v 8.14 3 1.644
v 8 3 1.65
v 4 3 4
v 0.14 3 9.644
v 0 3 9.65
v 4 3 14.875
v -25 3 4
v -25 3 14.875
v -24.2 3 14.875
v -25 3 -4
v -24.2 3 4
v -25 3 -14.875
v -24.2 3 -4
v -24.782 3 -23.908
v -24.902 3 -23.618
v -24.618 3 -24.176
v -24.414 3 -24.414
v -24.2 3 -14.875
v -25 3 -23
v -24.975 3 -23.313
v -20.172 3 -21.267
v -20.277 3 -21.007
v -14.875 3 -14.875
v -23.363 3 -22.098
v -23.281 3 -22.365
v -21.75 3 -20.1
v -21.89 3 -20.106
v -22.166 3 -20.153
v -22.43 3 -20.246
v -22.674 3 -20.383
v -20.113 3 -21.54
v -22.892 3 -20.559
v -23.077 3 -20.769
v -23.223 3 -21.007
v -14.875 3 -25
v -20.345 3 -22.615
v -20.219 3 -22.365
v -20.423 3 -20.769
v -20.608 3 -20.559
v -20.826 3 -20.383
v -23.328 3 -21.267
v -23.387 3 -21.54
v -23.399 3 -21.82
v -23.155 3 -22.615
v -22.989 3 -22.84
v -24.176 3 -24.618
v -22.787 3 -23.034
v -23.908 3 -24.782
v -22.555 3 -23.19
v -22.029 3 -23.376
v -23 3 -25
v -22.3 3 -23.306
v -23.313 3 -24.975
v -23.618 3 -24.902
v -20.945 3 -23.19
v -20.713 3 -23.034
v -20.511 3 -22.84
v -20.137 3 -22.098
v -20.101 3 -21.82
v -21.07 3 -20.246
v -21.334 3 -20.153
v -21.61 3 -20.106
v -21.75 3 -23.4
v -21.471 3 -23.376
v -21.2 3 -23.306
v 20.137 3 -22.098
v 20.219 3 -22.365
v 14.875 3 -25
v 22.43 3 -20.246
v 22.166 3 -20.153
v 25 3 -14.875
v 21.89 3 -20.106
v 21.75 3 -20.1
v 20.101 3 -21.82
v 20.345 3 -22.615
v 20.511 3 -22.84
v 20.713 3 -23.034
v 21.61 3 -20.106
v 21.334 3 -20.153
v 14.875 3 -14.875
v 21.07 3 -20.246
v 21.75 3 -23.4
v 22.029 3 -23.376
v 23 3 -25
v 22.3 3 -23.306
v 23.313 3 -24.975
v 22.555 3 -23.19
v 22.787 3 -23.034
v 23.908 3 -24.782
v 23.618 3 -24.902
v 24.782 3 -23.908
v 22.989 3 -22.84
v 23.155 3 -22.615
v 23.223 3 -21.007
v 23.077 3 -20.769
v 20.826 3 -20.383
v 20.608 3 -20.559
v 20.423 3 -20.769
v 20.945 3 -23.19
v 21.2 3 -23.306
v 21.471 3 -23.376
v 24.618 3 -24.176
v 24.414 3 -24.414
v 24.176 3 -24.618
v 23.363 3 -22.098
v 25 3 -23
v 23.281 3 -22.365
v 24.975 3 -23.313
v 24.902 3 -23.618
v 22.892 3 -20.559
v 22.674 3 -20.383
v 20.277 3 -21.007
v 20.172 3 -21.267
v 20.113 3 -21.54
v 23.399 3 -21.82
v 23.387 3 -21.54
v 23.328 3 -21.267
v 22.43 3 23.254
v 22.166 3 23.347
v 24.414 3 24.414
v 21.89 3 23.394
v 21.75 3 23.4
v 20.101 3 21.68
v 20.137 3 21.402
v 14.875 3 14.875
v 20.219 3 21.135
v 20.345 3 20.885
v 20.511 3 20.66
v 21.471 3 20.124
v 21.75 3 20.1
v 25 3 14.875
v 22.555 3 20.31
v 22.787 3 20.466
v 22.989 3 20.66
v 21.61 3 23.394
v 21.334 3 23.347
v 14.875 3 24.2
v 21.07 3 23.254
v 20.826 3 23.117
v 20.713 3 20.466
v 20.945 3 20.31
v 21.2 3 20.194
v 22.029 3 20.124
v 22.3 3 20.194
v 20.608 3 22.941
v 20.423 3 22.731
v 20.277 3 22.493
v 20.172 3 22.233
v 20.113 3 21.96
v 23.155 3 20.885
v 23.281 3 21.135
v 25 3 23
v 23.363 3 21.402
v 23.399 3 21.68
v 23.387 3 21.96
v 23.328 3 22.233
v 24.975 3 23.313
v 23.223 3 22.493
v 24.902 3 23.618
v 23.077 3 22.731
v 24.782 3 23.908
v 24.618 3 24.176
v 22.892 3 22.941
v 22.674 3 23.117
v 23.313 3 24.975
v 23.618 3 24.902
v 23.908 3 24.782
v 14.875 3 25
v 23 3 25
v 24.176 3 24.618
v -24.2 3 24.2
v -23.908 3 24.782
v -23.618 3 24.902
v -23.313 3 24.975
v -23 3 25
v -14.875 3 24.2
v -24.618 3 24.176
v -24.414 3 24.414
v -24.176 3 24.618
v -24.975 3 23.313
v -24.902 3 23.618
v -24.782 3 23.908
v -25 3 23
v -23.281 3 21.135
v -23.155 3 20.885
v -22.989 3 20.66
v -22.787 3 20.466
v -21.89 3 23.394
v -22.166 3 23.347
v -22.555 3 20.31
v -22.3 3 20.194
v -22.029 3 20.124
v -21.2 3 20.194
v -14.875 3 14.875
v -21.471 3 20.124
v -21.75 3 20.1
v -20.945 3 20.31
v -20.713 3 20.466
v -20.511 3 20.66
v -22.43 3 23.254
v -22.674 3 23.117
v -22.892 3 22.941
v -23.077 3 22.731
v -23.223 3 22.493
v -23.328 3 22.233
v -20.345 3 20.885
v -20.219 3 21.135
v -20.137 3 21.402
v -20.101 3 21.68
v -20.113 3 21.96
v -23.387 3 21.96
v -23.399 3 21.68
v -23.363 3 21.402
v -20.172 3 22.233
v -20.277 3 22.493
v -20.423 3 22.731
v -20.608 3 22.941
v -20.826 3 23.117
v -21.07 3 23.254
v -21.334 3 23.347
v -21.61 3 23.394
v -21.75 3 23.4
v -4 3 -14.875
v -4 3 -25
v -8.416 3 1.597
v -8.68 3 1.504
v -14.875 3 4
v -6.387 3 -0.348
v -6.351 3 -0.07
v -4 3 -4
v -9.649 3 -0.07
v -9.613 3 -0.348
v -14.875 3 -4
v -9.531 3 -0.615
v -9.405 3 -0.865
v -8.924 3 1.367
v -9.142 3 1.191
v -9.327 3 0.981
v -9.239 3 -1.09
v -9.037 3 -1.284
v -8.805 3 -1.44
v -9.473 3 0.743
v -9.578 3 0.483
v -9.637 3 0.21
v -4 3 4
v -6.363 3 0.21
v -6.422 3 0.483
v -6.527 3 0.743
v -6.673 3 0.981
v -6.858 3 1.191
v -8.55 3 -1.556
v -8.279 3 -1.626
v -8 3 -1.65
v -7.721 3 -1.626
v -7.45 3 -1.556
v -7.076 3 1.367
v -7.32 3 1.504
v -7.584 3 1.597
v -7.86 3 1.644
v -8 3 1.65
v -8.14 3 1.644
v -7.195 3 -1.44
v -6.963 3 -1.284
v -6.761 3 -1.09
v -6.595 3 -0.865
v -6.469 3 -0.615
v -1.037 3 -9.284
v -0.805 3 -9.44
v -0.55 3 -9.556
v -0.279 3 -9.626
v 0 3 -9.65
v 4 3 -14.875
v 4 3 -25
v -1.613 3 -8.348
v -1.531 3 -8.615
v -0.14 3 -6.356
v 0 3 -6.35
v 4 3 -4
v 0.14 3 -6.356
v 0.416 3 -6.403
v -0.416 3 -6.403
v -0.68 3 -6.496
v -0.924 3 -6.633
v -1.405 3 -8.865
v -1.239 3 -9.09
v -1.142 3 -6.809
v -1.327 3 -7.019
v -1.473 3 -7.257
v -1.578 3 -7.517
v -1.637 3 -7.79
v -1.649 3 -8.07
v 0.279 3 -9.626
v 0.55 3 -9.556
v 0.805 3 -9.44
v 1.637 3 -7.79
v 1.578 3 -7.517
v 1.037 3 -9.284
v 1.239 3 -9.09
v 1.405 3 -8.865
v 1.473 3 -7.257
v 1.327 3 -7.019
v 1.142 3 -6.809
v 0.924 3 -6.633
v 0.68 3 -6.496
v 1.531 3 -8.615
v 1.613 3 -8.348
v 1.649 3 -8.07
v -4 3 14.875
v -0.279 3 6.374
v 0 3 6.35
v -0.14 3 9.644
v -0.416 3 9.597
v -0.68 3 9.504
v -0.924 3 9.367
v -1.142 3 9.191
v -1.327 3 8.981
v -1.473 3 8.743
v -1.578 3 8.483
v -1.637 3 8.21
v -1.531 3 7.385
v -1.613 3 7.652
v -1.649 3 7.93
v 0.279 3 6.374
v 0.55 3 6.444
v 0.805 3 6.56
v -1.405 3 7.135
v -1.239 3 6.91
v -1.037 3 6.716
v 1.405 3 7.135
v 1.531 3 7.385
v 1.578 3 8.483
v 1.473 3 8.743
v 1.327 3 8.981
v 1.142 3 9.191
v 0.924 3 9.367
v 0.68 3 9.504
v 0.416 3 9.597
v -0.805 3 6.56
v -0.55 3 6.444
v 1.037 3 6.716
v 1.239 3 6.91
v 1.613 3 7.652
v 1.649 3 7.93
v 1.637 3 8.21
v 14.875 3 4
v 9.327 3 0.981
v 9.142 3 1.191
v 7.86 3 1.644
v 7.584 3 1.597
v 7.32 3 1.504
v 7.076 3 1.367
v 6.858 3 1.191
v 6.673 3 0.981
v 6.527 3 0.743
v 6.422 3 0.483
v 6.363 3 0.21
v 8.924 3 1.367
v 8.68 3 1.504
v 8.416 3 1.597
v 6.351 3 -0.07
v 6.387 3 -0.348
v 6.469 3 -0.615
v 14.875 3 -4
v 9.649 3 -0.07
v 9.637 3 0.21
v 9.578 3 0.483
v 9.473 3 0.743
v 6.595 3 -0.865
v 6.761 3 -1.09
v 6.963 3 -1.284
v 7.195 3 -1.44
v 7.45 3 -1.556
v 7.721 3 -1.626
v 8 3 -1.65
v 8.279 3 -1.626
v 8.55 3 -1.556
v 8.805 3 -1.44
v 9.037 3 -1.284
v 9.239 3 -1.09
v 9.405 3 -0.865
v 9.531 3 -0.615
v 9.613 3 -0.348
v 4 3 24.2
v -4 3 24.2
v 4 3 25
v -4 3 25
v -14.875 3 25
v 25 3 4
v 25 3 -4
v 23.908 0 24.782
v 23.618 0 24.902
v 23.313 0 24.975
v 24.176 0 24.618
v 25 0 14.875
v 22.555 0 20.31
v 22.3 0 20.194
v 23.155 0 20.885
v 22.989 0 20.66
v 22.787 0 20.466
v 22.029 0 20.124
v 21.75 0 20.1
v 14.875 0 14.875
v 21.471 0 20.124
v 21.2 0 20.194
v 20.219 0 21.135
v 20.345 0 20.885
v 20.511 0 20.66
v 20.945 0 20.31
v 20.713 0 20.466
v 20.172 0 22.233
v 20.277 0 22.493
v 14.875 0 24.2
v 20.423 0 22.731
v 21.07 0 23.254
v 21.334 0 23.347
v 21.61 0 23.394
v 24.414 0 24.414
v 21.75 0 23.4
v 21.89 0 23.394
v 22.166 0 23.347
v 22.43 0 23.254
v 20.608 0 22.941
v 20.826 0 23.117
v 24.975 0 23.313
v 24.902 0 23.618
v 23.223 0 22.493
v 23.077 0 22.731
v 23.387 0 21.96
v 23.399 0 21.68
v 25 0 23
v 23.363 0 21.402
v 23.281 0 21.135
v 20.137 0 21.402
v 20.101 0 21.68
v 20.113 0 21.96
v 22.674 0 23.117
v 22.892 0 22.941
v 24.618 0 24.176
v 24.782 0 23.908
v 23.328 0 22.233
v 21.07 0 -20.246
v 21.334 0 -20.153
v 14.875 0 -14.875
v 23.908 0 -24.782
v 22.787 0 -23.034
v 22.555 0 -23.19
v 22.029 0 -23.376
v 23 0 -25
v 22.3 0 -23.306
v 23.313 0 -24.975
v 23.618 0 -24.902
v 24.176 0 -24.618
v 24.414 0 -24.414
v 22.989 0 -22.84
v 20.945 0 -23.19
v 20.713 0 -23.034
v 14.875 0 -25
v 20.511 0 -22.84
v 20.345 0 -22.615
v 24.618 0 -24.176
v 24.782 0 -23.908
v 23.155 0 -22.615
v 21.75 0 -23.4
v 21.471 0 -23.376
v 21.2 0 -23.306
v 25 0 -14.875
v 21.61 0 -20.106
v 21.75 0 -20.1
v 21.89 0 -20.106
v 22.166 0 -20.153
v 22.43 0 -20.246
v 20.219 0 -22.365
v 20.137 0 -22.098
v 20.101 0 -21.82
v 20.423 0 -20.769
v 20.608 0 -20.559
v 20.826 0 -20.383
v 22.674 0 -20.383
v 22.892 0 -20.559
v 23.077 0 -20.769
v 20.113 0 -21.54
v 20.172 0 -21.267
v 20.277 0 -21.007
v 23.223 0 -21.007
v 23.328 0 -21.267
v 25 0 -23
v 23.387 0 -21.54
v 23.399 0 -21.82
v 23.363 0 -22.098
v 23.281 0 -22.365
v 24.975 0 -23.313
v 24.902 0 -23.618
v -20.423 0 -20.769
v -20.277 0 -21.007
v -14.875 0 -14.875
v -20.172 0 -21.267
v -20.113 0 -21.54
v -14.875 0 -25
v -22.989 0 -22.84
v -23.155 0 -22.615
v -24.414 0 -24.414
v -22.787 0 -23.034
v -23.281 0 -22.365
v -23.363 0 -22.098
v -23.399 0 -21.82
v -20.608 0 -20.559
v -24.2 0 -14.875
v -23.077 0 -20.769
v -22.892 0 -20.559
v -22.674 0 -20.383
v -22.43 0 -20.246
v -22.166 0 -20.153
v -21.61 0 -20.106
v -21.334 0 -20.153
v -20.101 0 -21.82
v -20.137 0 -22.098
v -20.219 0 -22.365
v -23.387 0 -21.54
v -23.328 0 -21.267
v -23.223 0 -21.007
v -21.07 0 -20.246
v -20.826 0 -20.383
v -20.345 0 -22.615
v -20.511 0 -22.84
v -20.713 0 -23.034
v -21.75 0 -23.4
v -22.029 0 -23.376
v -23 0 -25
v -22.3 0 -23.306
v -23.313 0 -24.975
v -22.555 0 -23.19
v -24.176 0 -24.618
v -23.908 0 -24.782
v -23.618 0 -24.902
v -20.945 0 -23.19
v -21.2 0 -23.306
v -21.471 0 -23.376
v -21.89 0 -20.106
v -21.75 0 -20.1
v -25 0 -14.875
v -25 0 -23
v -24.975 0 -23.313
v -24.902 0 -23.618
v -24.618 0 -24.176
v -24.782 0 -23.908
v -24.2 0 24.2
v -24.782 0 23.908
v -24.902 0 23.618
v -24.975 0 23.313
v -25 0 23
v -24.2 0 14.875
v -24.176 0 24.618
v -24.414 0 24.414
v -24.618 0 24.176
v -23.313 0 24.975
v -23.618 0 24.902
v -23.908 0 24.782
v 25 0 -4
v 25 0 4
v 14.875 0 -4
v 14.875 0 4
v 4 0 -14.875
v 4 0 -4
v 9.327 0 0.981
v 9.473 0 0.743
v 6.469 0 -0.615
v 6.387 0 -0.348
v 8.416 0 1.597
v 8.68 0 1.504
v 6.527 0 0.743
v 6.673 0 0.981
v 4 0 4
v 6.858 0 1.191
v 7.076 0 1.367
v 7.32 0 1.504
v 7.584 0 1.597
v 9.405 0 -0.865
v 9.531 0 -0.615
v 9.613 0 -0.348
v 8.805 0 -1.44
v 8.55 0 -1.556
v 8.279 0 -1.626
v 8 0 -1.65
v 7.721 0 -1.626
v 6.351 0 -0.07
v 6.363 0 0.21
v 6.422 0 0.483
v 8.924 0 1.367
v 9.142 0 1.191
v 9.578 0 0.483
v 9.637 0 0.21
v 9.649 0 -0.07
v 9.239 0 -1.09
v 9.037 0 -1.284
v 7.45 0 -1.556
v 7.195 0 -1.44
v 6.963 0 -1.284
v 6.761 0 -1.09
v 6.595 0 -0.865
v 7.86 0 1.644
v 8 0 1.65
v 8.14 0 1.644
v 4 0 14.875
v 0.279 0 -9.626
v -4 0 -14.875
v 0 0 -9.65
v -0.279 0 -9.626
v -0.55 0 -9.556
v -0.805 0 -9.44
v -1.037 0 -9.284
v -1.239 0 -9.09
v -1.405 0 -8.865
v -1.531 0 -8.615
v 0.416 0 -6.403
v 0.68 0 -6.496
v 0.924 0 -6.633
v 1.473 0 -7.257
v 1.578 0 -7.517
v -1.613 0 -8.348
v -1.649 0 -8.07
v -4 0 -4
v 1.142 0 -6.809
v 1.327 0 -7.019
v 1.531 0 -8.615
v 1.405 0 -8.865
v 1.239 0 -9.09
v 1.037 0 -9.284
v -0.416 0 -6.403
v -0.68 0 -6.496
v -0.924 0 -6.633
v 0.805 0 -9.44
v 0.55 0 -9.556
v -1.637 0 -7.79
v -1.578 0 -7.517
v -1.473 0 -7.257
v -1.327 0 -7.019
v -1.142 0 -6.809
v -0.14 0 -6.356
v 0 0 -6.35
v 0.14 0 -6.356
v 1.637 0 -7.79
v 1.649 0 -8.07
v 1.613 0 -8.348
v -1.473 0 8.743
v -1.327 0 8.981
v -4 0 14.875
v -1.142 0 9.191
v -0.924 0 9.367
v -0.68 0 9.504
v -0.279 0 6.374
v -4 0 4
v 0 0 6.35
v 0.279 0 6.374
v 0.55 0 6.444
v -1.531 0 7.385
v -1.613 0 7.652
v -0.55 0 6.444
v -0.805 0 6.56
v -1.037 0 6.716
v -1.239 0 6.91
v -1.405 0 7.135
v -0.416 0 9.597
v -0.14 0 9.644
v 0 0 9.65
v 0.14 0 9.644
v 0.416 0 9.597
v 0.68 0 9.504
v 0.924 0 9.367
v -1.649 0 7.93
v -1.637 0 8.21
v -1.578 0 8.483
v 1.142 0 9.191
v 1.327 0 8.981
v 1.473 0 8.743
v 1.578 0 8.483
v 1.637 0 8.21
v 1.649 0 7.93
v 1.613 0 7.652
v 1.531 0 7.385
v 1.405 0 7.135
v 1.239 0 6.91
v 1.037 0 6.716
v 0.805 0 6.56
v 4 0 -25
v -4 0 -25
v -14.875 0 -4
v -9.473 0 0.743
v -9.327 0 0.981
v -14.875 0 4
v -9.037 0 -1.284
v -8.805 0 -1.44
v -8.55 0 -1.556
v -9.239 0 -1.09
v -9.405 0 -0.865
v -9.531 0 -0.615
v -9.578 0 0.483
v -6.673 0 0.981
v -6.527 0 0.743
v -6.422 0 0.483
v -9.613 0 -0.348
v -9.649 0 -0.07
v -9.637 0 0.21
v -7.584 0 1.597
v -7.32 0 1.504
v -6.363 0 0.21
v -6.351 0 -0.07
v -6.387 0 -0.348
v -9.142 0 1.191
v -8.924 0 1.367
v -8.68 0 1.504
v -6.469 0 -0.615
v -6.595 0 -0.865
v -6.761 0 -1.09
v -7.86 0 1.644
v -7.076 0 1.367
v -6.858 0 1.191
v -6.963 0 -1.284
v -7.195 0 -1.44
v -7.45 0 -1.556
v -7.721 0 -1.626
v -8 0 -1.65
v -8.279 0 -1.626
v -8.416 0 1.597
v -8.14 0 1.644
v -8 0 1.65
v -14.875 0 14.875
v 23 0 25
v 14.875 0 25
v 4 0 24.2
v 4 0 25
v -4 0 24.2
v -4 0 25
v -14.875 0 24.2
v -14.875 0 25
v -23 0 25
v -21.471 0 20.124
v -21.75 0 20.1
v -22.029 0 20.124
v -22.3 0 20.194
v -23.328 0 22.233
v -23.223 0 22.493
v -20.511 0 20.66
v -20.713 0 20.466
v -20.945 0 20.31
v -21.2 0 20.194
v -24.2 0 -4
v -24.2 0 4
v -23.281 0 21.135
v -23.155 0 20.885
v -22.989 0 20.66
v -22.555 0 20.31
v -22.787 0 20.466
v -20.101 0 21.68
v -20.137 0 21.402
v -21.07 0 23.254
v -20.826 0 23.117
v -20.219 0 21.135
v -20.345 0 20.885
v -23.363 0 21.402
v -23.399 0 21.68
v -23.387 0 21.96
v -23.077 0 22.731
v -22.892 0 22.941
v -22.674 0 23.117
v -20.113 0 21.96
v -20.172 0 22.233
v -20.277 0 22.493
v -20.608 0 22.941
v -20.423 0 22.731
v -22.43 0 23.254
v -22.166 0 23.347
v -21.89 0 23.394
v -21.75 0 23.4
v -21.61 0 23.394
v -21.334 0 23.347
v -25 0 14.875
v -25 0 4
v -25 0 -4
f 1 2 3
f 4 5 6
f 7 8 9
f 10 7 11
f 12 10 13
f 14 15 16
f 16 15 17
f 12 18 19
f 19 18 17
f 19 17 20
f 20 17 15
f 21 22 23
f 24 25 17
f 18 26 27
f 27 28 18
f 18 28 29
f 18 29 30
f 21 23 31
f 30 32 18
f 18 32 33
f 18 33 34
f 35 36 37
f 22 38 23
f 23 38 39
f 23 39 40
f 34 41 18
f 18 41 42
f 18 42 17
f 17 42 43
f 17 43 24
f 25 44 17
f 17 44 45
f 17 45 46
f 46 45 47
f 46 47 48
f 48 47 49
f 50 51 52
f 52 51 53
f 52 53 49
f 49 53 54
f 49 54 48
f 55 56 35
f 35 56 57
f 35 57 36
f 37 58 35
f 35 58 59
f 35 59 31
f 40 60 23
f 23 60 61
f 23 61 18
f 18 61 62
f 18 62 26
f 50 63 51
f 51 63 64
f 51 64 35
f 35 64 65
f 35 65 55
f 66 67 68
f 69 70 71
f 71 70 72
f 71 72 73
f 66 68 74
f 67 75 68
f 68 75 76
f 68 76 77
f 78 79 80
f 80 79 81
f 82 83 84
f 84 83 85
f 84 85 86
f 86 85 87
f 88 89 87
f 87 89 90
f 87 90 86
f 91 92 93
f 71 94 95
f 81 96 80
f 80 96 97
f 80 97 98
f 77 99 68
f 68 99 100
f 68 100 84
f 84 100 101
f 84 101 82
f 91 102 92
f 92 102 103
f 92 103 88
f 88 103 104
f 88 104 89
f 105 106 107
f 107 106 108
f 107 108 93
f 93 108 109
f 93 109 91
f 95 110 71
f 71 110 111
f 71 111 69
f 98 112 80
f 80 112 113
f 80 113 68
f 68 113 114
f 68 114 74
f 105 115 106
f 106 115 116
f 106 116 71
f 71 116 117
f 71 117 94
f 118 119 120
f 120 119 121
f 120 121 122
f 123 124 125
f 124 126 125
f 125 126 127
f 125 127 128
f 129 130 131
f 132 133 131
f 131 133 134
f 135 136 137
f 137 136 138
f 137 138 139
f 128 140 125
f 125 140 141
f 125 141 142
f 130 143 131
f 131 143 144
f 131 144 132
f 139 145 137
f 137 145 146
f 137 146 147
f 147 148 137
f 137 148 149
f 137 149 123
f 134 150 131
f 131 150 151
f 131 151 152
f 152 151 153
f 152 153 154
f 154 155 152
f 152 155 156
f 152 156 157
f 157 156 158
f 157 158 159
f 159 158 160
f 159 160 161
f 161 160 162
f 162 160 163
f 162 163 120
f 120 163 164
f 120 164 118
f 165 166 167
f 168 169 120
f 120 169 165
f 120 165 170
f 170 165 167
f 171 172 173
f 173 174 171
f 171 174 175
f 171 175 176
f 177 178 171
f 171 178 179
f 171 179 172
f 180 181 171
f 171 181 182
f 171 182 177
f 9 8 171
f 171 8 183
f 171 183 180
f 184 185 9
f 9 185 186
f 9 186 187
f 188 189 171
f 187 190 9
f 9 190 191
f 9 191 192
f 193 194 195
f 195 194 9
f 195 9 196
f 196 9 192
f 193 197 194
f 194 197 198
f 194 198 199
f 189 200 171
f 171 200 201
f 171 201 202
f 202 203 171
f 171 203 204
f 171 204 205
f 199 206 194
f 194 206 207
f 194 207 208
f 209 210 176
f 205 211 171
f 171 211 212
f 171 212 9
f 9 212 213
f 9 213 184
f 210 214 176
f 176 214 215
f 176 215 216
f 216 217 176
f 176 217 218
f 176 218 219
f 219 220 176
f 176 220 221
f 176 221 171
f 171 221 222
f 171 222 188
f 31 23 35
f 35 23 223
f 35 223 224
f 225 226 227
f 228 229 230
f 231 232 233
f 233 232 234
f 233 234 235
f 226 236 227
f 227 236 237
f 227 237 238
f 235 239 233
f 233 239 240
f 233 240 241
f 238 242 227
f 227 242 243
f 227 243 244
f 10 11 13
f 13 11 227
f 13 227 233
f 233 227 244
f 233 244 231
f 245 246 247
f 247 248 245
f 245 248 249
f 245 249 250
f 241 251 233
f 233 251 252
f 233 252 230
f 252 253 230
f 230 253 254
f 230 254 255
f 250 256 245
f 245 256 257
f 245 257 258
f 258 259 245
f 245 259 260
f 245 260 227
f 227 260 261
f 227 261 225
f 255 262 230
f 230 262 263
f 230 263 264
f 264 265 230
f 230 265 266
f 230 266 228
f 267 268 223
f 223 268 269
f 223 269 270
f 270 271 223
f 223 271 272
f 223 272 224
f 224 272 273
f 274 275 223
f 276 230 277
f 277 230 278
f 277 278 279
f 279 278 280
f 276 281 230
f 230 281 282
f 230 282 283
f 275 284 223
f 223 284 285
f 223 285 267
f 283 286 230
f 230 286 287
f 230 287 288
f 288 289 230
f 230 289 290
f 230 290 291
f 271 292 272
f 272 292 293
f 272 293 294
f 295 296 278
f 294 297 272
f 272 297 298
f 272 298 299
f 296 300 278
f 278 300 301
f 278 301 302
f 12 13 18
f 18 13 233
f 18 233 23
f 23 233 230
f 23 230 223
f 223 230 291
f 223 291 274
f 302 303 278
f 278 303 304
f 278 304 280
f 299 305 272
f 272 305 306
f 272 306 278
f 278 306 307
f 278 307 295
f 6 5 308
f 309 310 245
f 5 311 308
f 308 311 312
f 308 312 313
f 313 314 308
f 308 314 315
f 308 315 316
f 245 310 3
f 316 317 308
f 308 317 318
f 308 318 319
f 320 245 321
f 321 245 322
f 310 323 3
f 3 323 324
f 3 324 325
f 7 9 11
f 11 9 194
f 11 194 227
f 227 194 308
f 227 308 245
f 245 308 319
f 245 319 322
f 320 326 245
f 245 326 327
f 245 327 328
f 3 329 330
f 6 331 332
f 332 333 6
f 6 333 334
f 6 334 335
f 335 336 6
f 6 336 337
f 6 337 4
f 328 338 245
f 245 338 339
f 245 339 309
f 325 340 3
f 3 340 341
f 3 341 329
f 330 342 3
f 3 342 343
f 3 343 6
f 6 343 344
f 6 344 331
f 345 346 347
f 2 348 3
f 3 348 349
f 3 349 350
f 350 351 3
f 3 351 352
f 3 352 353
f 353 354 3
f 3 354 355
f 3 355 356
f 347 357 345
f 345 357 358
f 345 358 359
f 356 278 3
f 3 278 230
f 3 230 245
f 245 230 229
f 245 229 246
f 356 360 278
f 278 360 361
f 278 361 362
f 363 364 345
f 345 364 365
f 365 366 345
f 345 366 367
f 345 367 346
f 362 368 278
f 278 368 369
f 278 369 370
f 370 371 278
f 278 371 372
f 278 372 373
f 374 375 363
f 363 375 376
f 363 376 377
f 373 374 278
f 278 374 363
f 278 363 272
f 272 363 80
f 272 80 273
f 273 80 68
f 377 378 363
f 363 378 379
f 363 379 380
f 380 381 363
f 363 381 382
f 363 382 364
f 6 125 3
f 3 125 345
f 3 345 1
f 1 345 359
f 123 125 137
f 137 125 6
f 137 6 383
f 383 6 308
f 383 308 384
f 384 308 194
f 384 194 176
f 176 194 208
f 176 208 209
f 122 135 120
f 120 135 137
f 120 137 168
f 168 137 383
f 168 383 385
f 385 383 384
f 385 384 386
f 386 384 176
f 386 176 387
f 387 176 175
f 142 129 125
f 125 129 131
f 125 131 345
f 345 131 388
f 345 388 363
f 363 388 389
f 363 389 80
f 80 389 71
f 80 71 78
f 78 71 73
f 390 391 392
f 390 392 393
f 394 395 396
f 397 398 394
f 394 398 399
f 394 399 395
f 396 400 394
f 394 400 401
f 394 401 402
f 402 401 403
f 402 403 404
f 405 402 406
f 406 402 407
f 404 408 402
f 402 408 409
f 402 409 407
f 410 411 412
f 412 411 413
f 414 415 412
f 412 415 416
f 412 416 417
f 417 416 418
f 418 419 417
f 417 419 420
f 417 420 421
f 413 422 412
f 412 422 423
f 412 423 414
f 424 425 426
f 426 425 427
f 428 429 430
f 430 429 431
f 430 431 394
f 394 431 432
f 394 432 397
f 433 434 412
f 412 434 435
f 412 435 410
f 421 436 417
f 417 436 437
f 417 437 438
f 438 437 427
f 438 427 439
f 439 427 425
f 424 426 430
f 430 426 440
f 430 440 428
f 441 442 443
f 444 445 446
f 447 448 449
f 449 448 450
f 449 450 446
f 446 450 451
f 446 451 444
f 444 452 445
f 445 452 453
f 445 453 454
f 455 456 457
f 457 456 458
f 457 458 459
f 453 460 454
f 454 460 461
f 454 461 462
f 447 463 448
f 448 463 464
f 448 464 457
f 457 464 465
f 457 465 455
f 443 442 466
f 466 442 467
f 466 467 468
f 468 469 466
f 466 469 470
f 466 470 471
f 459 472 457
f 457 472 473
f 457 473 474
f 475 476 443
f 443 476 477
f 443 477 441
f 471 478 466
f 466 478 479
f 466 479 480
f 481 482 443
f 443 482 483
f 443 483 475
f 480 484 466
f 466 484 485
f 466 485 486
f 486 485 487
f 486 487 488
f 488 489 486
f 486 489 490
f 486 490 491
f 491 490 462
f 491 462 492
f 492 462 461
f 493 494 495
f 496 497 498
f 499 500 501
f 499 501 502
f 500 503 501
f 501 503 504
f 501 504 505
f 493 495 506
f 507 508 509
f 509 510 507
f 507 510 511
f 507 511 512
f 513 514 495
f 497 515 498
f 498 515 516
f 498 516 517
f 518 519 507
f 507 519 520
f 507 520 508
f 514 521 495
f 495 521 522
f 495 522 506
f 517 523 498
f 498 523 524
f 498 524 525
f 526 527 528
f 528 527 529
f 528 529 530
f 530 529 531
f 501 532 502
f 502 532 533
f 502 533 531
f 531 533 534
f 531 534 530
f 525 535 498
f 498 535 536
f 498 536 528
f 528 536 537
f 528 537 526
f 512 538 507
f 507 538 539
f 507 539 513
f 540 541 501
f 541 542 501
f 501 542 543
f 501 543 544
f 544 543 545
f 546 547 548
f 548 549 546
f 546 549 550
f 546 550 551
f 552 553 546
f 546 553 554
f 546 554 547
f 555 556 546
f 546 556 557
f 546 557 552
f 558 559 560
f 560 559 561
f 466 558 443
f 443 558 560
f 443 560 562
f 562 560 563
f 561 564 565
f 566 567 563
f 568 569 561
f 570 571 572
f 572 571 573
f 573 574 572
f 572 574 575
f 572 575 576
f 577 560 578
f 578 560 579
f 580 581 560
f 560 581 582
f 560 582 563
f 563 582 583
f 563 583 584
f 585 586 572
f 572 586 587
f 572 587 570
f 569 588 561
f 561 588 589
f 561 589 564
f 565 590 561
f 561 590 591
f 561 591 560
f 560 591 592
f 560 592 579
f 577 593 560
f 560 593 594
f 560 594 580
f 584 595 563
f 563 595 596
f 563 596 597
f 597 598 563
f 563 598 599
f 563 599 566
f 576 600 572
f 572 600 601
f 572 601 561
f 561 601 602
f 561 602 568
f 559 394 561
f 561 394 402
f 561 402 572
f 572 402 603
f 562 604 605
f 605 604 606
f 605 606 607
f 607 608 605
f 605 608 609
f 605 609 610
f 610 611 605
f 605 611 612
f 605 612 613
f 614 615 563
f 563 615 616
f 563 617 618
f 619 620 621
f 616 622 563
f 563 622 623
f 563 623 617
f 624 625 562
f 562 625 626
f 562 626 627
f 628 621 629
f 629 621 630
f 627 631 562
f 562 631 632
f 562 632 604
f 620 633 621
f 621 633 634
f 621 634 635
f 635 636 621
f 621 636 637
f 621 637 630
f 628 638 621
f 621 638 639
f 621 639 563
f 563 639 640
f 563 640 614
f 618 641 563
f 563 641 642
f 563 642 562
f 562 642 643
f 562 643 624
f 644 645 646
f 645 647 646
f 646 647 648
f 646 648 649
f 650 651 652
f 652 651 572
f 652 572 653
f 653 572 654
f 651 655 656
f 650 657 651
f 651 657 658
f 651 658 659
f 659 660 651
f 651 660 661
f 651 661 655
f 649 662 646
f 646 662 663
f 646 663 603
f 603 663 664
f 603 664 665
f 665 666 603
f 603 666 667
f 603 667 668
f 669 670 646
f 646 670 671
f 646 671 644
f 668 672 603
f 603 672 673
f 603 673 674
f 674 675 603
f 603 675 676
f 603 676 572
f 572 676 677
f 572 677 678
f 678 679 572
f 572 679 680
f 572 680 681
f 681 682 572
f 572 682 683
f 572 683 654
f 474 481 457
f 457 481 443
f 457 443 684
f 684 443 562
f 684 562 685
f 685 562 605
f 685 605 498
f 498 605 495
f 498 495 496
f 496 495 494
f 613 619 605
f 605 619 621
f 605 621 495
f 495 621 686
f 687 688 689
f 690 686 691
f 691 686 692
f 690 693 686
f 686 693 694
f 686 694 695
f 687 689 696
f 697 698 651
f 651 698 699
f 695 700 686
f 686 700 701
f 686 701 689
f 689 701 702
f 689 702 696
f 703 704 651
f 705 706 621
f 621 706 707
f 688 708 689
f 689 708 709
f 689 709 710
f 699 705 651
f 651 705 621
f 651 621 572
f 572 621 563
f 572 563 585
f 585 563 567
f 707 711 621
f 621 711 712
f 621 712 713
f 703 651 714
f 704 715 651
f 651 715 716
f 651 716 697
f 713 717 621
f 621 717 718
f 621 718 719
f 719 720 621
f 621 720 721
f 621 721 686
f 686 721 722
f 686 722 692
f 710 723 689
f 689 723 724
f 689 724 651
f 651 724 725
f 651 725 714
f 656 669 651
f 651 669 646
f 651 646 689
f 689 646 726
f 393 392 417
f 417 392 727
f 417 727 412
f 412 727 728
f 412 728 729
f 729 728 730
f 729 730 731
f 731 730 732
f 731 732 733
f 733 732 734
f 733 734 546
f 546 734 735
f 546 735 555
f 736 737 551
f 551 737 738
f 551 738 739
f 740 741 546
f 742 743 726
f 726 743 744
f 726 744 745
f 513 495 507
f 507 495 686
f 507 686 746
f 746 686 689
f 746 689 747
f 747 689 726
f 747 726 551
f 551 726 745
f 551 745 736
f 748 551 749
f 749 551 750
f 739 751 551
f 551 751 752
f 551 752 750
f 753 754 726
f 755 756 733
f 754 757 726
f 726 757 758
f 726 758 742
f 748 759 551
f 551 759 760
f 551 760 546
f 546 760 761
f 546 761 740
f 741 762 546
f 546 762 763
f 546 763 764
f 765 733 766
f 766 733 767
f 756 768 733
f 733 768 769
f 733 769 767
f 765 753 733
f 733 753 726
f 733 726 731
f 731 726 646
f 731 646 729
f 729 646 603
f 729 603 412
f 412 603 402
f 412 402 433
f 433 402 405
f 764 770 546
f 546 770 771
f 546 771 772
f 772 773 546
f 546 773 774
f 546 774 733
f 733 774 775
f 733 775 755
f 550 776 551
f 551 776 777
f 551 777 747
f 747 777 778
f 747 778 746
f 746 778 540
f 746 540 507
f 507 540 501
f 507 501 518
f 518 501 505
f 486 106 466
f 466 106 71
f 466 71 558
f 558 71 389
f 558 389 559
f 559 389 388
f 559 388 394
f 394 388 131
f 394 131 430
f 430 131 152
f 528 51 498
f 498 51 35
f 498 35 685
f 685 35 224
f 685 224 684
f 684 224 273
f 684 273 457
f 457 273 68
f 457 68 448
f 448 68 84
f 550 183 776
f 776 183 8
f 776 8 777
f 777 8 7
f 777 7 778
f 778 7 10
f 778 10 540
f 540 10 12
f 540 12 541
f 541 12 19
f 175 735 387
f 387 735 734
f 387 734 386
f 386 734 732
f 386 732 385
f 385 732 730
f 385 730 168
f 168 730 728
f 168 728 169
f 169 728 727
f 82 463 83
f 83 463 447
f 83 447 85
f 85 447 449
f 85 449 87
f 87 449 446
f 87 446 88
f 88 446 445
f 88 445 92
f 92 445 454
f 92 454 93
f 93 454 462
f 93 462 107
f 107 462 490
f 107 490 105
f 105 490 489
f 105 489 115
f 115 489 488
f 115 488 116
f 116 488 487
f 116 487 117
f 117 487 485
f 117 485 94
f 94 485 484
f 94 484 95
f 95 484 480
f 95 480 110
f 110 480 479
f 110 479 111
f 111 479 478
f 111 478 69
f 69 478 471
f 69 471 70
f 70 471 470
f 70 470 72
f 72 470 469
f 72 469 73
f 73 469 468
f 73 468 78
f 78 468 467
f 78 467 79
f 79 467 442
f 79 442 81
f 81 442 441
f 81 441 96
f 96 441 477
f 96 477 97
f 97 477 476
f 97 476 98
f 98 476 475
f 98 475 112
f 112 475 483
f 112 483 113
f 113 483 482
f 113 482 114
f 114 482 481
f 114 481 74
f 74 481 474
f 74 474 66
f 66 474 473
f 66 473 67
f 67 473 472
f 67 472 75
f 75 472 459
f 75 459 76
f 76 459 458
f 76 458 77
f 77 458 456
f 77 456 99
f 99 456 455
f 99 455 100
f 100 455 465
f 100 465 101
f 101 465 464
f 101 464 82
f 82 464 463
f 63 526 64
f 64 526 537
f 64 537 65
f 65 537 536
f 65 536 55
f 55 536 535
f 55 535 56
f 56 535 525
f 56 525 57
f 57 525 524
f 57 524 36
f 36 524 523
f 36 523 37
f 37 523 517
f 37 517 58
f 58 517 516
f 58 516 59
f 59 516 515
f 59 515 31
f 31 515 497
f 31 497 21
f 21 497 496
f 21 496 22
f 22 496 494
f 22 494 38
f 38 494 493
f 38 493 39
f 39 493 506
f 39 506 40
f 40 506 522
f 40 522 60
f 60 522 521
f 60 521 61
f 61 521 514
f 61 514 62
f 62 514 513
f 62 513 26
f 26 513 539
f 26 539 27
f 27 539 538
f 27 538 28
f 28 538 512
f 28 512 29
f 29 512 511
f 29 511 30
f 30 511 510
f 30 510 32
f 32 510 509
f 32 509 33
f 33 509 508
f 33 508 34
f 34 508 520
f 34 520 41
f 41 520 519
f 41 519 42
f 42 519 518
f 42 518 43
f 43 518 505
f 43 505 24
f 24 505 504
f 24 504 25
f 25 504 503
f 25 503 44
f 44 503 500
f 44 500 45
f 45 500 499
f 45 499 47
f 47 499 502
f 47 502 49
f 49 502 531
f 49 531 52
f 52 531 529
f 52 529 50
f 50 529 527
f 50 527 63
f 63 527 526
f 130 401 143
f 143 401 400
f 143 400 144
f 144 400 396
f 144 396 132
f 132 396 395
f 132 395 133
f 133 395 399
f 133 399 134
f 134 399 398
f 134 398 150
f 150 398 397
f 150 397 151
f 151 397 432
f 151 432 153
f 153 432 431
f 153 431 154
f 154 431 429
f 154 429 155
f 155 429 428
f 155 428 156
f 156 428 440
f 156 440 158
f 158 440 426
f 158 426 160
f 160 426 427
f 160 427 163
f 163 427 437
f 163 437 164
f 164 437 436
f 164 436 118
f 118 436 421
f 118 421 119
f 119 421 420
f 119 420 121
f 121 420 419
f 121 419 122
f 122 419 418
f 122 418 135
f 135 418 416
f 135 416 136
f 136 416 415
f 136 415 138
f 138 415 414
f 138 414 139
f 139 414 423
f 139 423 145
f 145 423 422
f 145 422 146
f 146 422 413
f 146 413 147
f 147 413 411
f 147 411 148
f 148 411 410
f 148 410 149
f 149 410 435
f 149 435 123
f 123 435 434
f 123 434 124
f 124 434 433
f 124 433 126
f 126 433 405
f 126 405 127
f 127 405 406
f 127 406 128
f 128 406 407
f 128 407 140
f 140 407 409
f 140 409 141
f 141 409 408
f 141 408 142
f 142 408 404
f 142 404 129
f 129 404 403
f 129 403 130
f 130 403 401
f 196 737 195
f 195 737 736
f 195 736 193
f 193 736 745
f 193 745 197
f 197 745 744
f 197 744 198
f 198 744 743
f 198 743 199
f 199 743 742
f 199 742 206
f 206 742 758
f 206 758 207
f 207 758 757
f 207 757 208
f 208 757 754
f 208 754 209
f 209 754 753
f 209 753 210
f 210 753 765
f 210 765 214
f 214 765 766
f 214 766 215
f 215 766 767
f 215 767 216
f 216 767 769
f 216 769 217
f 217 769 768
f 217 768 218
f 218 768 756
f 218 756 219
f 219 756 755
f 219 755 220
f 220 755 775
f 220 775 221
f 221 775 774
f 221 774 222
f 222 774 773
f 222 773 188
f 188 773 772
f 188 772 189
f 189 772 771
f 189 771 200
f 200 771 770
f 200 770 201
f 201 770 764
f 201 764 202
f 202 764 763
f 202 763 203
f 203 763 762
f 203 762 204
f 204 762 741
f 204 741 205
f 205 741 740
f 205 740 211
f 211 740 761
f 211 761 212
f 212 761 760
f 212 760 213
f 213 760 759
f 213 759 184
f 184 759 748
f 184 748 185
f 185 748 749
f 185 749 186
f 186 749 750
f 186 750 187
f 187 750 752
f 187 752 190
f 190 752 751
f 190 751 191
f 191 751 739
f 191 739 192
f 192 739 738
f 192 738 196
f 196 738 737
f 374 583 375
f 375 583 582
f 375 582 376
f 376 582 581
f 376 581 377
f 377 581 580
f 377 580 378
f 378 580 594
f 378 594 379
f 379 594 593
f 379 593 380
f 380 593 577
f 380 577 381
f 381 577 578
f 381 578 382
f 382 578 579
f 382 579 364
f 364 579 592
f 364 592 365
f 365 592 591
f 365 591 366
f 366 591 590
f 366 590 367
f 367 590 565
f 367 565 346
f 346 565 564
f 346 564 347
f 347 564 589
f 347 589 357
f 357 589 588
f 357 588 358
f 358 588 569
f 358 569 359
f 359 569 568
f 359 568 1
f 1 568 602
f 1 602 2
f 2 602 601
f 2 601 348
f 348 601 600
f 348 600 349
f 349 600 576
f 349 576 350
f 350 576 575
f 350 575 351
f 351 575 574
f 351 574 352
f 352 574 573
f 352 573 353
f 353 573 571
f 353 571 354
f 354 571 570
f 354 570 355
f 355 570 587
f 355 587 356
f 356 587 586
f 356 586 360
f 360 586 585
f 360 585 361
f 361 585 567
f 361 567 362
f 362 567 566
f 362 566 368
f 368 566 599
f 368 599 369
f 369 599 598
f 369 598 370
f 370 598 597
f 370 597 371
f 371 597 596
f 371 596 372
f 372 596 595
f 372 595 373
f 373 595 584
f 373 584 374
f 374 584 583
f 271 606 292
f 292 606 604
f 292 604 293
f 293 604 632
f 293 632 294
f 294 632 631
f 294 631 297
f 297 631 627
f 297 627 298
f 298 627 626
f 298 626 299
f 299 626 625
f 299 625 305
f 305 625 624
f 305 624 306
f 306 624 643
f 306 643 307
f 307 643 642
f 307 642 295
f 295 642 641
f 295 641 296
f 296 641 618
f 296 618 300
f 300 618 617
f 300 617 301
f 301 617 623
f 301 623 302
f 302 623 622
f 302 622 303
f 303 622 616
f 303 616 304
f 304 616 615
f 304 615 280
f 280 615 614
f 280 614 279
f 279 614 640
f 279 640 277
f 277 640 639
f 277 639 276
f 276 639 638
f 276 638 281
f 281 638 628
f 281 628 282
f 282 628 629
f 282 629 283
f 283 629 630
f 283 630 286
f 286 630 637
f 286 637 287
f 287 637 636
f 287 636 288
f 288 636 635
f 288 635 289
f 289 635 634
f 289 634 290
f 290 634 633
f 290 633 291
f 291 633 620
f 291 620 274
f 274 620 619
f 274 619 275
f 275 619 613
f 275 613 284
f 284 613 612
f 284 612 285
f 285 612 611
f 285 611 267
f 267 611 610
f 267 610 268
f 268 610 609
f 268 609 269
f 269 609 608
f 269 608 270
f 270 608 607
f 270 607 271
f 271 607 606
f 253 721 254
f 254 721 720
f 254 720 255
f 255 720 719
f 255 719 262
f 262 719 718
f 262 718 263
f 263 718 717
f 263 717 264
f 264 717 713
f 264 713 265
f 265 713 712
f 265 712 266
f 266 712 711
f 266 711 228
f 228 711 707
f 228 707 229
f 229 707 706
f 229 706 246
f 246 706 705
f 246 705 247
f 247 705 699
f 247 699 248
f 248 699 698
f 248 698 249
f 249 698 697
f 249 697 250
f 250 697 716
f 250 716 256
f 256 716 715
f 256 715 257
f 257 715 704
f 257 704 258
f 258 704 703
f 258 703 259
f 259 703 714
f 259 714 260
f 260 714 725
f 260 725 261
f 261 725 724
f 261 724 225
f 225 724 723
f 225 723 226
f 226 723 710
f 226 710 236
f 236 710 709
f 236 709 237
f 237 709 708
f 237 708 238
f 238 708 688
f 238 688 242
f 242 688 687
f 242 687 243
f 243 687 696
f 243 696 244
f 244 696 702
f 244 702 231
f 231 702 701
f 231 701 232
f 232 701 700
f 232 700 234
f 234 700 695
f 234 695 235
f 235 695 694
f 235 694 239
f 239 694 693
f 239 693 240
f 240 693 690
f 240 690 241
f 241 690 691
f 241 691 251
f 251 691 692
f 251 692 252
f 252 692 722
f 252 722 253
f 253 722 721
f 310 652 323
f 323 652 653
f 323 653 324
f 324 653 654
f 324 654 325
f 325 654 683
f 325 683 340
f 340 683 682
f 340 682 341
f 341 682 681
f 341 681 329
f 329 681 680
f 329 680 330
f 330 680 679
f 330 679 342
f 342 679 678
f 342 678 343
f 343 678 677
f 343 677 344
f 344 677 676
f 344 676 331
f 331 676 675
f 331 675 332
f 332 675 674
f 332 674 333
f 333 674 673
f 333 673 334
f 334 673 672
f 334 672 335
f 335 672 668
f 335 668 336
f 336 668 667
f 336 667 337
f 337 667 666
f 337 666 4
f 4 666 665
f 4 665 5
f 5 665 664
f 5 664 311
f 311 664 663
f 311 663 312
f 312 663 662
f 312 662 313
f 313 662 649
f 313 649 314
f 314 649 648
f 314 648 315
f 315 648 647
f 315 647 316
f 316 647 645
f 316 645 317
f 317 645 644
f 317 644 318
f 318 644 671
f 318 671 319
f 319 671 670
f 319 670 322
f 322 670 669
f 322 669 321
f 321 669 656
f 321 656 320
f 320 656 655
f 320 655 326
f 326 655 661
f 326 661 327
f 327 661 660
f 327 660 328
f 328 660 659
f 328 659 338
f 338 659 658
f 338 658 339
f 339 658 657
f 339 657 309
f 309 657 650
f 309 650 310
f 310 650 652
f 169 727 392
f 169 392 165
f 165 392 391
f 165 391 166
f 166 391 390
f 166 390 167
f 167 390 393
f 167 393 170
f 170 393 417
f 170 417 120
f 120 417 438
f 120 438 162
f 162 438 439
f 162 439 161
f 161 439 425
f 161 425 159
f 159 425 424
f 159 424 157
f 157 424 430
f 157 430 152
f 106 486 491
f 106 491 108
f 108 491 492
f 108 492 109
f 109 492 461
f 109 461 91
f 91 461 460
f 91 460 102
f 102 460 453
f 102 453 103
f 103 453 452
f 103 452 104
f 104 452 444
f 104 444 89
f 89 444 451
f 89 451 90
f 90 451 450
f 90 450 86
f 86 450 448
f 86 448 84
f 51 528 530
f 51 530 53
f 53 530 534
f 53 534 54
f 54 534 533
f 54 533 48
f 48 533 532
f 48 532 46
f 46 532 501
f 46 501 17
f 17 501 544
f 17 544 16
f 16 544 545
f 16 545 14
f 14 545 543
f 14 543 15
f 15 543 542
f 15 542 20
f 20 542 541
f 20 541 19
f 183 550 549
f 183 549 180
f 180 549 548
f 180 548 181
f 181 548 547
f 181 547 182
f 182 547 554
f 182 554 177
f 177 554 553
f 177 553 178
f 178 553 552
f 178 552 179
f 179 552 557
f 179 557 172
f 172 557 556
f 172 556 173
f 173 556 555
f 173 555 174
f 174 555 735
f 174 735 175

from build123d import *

# Parameters (mm, degrees)
SKETCH_1_W      = 50
SKETCH_1_H      = 50
SKETCH_1_R      = 1.65
EXTRUDE_2_DEPTH = 3
FILLET_1_R      = 2
FILLET_2_R      = 2
FILLET_3_R      = 2
FILLET_4_R      = 2


with BuildPart() as part:
    # 草图1 → 凸台-拉伸2 (new body)
    with BuildSketch(Plane(origin=(0, 0, 0), x_dir=(1, 0, 0), z_dir=(0, 1, 0))):
        Rectangle(SKETCH_1_W, SKETCH_1_H)
        with Locations((21.75, 21.75)):
            Circle(SKETCH_1_R, mode=Mode.SUBTRACT)
        with Locations((-21.75, 21.75)):
            Circle(SKETCH_1_R, mode=Mode.SUBTRACT)
        with Locations((21.75, -21.75)):
            Circle(SKETCH_1_R, mode=Mode.SUBTRACT)
        with Locations((-21.75, -21.75)):
            Circle(SKETCH_1_R, mode=Mode.SUBTRACT)
        with Locations((8, 0)):
            Circle(SKETCH_1_R, mode=Mode.SUBTRACT)
        with Locations((0, 8)):
            Circle(SKETCH_1_R, mode=Mode.SUBTRACT)
        with Locations((-8, 0)):
            Circle(SKETCH_1_R, mode=Mode.SUBTRACT)
        with Locations((0, -8)):
            Circle(SKETCH_1_R, mode=Mode.SUBTRACT)
    extrude(amount=EXTRUDE_2_DEPTH)

    # 圆角1
    fillet_1_edges = [part.edges().sort_by_distance(p)[0] for p in [
        (25, 1.5, 25),
    ]]
    fillet(fillet_1_edges, radius=FILLET_1_R)

    # 圆角2
    fillet_2_edges = [part.edges().sort_by_distance(p)[0] for p in [
        (25, 1.5, -25),
    ]]
    fillet(fillet_2_edges, radius=FILLET_2_R)

    # 圆角3
    fillet_3_edges = [part.edges().sort_by_distance(p)[0] for p in [
        (-25, 1.5, -25),
    ]]
    fillet(fillet_3_edges, radius=FILLET_3_R)

    # 圆角4
    fillet_4_edges = [part.edges().sort_by_distance(p)[0] for p in [
        (-25, 1.5, 25),
    ]]
    fillet(fillet_4_edges, radius=FILLET_4_R)


solid = part.part
